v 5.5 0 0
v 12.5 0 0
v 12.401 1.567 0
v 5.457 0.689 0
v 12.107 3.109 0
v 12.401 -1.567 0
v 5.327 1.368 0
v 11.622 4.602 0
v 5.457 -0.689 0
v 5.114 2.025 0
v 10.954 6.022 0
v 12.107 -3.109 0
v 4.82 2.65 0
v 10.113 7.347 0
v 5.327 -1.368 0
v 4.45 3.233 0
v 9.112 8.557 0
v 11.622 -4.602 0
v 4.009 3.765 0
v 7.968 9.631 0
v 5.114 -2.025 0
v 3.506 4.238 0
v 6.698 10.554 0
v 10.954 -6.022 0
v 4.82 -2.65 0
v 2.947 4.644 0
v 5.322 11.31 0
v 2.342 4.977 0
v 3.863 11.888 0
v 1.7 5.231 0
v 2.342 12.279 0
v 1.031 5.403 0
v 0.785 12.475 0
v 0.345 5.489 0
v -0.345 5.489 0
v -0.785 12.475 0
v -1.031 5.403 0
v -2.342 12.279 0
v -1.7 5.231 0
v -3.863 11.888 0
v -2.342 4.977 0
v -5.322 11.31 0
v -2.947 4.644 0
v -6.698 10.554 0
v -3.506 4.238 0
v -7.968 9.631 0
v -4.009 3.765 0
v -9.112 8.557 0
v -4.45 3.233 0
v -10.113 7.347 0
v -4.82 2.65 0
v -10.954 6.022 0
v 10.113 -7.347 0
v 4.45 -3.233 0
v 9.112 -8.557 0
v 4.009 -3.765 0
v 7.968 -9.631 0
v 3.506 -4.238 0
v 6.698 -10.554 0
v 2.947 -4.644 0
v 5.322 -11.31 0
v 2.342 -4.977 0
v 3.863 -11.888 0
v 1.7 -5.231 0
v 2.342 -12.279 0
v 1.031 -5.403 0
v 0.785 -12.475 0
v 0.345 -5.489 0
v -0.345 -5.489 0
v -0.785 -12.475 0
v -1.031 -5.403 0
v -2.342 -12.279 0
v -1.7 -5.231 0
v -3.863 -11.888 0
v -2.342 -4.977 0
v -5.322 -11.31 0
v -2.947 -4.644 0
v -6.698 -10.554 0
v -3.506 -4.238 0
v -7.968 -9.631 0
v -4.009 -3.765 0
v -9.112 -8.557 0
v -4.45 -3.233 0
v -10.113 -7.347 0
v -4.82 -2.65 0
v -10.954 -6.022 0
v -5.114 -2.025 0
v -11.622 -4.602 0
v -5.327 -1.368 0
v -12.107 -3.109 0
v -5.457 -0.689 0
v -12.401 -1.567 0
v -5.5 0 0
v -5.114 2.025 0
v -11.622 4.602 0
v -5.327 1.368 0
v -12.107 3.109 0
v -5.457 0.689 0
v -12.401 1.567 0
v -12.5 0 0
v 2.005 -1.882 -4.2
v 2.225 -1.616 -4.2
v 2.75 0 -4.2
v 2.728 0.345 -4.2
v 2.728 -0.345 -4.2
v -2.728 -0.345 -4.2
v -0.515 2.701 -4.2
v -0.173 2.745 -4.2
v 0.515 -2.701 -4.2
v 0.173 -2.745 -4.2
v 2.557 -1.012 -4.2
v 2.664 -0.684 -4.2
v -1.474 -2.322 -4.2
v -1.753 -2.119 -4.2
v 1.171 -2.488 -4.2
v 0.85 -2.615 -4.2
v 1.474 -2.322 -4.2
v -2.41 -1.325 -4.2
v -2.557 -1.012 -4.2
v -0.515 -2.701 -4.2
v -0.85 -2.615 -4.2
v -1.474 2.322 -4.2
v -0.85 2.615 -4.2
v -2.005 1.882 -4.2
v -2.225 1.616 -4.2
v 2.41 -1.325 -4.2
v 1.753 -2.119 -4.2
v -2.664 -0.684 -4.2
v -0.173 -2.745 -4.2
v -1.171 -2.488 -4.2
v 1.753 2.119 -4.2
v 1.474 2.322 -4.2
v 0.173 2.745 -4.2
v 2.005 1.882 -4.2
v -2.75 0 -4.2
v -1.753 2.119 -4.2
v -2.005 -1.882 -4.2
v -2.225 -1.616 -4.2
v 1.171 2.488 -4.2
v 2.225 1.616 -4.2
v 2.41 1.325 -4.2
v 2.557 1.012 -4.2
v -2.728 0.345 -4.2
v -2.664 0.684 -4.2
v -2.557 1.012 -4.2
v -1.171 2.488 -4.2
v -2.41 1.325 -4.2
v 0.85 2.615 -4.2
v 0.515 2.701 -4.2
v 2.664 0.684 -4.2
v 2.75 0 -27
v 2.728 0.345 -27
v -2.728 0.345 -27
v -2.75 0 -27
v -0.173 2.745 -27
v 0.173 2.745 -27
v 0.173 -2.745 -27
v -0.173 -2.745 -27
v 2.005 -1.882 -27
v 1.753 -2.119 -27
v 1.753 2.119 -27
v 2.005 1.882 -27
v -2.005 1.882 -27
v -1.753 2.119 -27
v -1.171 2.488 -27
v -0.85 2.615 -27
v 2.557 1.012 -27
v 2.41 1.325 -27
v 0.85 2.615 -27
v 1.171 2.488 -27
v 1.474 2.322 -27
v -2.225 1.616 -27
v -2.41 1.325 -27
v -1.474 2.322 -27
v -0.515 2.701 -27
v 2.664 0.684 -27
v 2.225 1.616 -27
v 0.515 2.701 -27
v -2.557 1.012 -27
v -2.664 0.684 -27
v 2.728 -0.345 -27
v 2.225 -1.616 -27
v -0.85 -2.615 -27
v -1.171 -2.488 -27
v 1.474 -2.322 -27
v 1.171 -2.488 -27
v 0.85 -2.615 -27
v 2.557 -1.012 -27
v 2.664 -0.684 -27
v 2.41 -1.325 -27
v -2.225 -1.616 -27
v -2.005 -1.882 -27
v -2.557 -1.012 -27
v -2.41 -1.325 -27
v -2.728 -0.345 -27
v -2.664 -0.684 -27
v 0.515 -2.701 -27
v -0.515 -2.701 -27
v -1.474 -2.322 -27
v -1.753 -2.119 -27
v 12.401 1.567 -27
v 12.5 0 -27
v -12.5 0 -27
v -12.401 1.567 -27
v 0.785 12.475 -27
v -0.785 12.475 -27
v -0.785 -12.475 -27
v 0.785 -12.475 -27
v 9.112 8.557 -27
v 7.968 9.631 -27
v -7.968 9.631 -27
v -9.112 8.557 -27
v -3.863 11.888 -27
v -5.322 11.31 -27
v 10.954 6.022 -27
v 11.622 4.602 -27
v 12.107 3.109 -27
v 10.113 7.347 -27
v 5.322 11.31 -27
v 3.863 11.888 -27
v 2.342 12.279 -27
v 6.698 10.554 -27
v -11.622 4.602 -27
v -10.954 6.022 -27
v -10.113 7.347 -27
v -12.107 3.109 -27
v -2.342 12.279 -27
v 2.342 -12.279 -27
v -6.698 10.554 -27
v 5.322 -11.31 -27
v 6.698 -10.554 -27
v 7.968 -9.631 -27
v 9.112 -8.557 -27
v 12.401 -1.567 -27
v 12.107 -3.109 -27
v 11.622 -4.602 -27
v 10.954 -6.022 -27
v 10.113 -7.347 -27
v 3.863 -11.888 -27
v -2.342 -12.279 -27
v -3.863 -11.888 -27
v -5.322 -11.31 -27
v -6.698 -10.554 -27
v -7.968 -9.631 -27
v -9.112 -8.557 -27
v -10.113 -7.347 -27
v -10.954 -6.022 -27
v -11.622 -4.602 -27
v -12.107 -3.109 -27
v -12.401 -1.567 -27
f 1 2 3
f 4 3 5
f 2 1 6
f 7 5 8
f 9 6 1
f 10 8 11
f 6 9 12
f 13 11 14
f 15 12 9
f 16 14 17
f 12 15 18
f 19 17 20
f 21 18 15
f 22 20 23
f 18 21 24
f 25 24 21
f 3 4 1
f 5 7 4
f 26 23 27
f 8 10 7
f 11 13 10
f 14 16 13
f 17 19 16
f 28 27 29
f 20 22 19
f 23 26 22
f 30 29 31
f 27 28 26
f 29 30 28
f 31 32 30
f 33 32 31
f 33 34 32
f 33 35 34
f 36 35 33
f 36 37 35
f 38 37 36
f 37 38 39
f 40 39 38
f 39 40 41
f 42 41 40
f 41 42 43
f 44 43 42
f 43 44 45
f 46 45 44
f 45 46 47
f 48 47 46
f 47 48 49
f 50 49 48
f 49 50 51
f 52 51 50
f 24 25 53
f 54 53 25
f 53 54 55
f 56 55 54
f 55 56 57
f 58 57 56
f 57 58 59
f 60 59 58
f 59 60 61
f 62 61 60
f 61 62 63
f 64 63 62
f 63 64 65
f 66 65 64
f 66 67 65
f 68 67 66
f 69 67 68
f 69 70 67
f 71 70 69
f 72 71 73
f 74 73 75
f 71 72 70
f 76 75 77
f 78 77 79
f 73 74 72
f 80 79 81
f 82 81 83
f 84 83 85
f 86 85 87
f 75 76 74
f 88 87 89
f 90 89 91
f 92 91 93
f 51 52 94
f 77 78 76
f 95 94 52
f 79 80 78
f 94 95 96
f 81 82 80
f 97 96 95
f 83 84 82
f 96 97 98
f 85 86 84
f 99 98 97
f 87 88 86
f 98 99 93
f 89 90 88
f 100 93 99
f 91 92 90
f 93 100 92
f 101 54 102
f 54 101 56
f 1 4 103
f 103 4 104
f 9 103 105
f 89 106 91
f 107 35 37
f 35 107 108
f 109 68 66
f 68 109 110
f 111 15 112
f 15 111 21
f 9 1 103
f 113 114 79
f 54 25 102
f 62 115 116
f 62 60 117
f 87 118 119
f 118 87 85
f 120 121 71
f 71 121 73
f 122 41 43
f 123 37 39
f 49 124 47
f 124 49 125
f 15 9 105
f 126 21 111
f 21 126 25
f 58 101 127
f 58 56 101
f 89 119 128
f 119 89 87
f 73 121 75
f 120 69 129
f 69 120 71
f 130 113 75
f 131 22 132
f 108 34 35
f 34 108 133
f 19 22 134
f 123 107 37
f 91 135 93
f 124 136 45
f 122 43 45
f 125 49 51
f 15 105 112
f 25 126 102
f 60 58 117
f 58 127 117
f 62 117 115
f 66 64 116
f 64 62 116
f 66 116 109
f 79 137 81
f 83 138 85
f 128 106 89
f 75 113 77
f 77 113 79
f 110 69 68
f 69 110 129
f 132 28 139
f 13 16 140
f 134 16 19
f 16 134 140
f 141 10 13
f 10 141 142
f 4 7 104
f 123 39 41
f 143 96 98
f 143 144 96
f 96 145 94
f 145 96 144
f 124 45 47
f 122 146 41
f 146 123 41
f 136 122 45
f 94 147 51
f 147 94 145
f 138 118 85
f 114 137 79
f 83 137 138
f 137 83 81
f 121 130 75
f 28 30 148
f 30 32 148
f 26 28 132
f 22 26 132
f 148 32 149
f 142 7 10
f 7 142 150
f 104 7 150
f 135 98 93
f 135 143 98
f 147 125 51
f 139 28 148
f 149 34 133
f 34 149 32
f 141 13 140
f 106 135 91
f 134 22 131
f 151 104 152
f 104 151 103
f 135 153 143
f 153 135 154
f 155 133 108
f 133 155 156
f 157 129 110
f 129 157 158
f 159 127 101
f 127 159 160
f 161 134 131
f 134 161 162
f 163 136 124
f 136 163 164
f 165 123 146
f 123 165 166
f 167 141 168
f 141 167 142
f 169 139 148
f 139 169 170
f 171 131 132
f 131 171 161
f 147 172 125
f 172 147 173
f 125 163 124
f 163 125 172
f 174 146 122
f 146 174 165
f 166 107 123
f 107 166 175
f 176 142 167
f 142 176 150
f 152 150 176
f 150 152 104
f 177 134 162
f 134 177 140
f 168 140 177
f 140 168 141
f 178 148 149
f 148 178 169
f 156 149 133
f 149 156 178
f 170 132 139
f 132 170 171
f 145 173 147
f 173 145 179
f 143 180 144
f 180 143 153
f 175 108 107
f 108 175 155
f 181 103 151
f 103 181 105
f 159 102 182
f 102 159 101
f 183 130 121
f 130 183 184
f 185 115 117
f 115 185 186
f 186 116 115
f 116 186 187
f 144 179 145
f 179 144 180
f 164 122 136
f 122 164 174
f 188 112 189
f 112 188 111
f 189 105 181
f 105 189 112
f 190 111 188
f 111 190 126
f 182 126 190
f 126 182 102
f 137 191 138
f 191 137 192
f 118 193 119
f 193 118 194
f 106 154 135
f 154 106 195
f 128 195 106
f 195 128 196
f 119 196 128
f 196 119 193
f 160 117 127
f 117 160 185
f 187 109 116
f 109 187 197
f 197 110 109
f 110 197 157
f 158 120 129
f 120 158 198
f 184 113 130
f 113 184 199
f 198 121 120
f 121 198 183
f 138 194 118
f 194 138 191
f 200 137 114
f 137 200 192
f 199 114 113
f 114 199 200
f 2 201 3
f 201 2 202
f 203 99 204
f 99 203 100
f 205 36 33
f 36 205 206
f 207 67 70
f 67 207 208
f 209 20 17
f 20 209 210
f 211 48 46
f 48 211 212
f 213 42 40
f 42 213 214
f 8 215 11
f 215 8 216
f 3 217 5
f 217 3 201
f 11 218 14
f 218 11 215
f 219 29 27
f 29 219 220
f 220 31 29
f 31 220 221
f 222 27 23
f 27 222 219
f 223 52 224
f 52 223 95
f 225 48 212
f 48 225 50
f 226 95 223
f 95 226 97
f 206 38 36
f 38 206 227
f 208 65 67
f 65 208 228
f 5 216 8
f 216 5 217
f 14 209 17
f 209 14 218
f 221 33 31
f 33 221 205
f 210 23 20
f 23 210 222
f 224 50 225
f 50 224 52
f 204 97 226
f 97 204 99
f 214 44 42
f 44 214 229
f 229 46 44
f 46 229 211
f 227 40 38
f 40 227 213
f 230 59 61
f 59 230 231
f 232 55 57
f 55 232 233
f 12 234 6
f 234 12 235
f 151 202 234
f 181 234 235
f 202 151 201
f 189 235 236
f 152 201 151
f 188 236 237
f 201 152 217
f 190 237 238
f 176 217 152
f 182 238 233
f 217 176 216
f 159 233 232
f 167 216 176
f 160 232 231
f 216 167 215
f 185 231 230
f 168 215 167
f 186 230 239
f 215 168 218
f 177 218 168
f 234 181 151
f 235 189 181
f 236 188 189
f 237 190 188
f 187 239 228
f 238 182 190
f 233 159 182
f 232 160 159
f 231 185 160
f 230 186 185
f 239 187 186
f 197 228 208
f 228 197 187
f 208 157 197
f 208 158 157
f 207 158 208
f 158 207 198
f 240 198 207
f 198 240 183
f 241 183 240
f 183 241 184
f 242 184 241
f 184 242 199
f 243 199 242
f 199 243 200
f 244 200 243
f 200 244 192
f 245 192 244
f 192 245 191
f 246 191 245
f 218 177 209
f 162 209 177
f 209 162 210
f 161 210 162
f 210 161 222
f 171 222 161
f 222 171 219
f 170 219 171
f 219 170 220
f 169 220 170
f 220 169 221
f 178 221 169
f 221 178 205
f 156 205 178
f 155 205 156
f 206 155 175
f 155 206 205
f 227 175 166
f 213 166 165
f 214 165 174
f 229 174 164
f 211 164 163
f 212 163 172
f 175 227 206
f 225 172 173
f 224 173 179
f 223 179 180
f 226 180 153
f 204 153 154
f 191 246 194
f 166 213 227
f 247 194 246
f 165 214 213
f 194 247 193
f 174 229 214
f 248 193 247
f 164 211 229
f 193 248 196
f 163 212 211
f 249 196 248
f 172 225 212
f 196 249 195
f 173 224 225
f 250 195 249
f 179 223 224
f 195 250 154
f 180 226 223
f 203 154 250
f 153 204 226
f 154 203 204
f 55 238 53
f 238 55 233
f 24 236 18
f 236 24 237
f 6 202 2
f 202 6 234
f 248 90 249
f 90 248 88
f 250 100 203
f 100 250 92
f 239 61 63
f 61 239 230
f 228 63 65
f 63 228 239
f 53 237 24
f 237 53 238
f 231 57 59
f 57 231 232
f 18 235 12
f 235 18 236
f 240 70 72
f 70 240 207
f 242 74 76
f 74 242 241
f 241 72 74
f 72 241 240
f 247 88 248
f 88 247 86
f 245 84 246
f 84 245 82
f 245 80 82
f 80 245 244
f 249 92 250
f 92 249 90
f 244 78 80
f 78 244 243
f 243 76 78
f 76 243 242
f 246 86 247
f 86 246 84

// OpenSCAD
$fn = 50;

difference() {
	union() {
		translate(v = [0, 0, -27.0]) {
			cylinder(h = 27, r = 12.5);
		}
	}
	union() {
		translate(v = [0, 0, 0]) {
			rotate(a = [0, 0, 0]) {
				difference() {
					union() {
						translate(v = [0, 0, -30.0]) {
							cylinder(h = 30, r = 2.25);
						}
						translate(v = [0, 0, -4.2]) {
							cylinder(h = 4.2, r1 = 2.75, r2 = 5.5);
						}
						translate(v = [0, 0, -30.0]) {
							cylinder(h = 30, r = 2.75);
						}
						translate(v = [0, 0, -30.0]) {
							cylinder(h = 30, r = 2.25);
						}
					}
					union();
				}
			}
		}
	}
}
